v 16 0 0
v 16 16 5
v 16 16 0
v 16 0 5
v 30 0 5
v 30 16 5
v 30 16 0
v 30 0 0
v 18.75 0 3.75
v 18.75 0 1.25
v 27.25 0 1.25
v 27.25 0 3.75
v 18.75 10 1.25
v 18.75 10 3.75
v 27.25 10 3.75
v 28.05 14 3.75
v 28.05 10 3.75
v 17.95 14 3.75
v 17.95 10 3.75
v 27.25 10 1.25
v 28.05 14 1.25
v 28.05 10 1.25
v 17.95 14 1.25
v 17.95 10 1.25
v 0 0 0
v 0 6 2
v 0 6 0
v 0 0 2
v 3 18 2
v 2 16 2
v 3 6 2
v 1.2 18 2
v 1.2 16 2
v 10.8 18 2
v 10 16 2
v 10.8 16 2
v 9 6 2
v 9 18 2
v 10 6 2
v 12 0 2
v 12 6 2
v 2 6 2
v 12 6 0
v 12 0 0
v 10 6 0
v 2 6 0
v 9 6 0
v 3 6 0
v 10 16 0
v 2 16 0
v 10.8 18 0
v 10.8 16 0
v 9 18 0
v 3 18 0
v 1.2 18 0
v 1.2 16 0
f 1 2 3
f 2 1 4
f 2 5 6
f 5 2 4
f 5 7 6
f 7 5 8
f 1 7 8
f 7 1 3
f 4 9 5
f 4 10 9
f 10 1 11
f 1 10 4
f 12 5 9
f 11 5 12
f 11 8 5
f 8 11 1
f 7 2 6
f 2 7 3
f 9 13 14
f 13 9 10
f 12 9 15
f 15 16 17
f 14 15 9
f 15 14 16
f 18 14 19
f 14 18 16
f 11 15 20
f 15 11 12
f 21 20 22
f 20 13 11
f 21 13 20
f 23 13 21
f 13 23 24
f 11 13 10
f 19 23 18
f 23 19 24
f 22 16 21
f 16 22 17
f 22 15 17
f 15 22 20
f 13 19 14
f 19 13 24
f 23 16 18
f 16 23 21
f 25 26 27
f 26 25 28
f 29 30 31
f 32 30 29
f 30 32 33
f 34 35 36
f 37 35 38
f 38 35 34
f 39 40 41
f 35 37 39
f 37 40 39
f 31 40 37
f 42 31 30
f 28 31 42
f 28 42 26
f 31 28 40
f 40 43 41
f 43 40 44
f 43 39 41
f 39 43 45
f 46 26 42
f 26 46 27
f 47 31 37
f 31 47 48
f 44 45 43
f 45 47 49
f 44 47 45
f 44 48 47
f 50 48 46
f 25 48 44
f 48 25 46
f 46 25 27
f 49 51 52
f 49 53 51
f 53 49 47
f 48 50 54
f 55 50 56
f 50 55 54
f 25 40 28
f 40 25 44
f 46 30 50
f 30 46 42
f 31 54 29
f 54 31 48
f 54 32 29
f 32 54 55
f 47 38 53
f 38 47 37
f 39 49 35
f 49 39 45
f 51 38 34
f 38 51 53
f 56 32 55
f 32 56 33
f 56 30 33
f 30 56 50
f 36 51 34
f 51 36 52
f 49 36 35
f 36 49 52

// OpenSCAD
// Paprastas modelis tvirtoms dervoms: spragtukas iš dviejų dalių, spausdinamų
// greta, gulsčių. Kištukas su dviem lanksčiomis kojelėmis įstumiamas į lizdą:
// užkabos susispaudžia kanale ir išsiskečia kameroje. Pavyko = įsispaudžia ir
// laikosi; kojelės lūžta = derva per trapi arba perkietinta.
leg = 1.0;       // kojelės storis, mm
tol = 0.25;      // tarpas lizde
h = 2;           // kištuko storis
barb = 0.8;      // užkabos iškyša į šoną
// kištukas: galvutė y 0..6, kojelės y 6..18, užkabos kojelių galuose
cube([12, 6, h]);
translate([2, 6, 0]) cube([leg, 12, h]);
translate([10 - leg, 6, 0]) cube([leg, 12, h]);
translate([2 - barb, 16, 0]) cube([barb + leg, 2, h]);
translate([10 - leg, 16, 0]) cube([barb + leg, 2, h]);
// lizdas: kanalas 10 mm, už jo kamera užkaboms
translate([16, 0, 0]) difference() {
  cube([14, 16, 5]);
  translate([3 - tol, -0.1, 1.5 - tol]) cube([8 + 2*tol, 10.2, h + 2*tol]);
  translate([3 - barb - tol, 10, 1.5 - tol]) cube([8 + 2*barb + 2*tol, 4, h + 2*tol]);
}
